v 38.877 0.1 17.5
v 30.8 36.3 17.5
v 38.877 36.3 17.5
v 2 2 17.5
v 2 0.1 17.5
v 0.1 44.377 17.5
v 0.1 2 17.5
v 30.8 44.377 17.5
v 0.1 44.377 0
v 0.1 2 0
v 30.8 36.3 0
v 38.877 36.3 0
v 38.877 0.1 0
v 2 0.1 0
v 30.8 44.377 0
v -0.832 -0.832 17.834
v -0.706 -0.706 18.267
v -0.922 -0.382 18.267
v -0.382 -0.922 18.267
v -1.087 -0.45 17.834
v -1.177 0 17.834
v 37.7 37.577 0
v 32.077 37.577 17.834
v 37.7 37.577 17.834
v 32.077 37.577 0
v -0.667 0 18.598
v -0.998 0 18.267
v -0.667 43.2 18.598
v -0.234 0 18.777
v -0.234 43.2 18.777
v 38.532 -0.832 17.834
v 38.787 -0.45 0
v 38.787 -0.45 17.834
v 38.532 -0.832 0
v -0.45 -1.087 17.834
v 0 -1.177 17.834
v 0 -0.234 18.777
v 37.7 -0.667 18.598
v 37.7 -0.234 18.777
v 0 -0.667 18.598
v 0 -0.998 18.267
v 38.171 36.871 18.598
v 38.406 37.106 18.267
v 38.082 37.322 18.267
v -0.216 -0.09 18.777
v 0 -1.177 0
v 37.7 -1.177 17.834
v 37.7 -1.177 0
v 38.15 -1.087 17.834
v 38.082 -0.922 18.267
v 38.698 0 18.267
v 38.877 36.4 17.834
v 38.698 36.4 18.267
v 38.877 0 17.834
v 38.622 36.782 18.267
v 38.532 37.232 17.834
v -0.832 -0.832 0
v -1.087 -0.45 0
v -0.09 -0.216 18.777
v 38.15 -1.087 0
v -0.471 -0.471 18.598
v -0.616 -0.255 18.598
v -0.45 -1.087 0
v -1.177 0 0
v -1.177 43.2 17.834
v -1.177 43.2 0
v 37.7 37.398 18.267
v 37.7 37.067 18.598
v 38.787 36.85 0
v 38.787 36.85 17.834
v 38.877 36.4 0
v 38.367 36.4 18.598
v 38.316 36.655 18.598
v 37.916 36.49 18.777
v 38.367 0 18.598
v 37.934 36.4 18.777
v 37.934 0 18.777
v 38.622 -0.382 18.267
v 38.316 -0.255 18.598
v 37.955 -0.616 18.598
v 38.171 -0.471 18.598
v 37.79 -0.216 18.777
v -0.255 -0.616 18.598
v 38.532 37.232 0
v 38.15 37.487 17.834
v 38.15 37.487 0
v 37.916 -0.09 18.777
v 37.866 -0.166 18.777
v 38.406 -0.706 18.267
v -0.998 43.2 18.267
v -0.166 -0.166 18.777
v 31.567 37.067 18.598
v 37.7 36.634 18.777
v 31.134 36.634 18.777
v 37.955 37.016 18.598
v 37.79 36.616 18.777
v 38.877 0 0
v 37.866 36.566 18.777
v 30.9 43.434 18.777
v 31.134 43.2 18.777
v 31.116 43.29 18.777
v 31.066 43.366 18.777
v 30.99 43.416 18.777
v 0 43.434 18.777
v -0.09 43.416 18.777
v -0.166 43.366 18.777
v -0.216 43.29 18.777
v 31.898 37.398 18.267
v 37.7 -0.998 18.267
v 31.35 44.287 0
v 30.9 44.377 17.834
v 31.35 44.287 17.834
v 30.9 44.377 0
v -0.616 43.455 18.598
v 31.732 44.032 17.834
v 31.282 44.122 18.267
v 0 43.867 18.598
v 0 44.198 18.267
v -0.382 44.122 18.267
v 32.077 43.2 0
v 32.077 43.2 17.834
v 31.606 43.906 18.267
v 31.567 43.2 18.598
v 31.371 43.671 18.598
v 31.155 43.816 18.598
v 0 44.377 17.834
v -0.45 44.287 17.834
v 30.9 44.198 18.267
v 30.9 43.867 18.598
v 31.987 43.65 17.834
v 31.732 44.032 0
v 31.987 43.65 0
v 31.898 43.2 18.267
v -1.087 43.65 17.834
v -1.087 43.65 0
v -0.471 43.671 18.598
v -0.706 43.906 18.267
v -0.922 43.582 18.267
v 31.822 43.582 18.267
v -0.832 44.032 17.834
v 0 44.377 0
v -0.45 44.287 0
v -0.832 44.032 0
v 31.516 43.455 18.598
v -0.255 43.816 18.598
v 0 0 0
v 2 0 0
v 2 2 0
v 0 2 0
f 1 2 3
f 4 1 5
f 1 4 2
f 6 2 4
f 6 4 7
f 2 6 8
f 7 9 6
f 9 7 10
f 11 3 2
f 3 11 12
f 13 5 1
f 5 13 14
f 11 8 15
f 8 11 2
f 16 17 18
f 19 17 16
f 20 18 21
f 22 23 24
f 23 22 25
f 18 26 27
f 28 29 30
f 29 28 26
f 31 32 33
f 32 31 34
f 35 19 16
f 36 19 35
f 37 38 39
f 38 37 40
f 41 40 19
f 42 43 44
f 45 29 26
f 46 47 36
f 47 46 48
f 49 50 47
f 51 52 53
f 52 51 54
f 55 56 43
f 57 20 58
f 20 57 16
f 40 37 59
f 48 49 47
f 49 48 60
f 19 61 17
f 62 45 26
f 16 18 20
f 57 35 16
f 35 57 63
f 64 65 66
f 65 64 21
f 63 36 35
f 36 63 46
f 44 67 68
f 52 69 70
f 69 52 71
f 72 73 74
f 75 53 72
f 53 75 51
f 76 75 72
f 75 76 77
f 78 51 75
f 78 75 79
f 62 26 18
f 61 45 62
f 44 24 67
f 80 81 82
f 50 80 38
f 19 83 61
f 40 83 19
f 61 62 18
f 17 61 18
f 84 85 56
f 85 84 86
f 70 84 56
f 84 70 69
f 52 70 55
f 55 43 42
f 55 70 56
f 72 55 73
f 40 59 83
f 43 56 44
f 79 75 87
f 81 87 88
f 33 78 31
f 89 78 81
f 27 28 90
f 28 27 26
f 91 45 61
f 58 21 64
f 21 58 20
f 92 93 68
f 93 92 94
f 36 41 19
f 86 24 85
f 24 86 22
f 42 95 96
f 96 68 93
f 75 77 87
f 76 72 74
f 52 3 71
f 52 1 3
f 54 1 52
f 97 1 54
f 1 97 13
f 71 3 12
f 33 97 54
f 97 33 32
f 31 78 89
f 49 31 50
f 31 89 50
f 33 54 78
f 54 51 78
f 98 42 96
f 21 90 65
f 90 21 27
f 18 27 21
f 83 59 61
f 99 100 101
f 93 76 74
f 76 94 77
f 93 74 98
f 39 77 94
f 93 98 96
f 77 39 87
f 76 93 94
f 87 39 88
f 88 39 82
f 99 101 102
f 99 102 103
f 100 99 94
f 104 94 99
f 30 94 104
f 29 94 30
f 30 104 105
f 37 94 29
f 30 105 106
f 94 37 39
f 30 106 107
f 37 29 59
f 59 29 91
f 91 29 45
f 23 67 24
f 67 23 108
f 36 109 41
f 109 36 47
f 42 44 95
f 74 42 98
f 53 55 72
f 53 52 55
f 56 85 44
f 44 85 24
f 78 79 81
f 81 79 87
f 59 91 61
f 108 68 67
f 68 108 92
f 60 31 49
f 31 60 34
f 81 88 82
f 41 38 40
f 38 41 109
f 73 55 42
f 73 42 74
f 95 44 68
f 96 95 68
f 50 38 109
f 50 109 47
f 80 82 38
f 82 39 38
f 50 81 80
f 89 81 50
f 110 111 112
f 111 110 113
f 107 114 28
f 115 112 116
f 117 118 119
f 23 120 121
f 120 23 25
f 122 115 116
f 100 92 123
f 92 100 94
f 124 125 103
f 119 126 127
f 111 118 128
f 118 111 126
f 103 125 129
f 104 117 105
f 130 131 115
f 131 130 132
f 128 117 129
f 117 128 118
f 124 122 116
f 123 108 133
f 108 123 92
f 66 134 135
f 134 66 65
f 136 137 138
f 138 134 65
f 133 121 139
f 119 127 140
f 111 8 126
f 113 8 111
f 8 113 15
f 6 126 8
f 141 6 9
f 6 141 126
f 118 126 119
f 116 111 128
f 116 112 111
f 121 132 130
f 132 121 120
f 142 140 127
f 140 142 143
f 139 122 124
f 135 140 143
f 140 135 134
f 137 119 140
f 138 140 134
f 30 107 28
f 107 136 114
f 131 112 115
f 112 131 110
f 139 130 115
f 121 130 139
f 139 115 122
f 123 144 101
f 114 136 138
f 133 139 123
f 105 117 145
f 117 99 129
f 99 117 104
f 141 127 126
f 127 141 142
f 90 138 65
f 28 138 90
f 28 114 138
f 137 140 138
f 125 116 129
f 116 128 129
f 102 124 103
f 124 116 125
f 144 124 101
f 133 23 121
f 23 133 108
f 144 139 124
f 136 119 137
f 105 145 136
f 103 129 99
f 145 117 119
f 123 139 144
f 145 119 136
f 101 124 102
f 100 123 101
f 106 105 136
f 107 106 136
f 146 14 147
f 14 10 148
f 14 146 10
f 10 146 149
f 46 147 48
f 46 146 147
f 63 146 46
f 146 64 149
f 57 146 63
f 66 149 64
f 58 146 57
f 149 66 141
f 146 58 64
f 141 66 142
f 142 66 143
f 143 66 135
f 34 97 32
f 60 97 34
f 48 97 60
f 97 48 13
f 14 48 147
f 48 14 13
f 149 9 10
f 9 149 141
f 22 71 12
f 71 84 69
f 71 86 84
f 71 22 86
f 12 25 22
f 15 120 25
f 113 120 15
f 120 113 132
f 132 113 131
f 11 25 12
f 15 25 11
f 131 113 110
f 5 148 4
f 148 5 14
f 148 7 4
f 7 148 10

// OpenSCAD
walls=0.1;
w1=36+0.2;
w2=30.5+0.2;
h=17+0.5;

sz1=w1+7; // overlap, larger than the largest
sz2=w2+7;

round=1.2;
$fn=16;


difference() {
    // round outwards facing walls
    minkowski() {
        union() {
            cube([sz2,w1+walls*2,h+walls]);
            cube([w2+walls*2,sz1,h+walls]);
        }

        sphere(round);
    }
    
    // cut out space for pipes (w/o rounding)
    translate([walls,walls,-0.00001]) {
        cube([sz1+3,w1,h]);
        cube([w2,sz1+3,h]);
    }
    
    // remove extra material due to rounding, facing wall
    translate([-100,-100,-2*round])
        cube([200,200,2*round]);
}
cube([2,2,h]);
